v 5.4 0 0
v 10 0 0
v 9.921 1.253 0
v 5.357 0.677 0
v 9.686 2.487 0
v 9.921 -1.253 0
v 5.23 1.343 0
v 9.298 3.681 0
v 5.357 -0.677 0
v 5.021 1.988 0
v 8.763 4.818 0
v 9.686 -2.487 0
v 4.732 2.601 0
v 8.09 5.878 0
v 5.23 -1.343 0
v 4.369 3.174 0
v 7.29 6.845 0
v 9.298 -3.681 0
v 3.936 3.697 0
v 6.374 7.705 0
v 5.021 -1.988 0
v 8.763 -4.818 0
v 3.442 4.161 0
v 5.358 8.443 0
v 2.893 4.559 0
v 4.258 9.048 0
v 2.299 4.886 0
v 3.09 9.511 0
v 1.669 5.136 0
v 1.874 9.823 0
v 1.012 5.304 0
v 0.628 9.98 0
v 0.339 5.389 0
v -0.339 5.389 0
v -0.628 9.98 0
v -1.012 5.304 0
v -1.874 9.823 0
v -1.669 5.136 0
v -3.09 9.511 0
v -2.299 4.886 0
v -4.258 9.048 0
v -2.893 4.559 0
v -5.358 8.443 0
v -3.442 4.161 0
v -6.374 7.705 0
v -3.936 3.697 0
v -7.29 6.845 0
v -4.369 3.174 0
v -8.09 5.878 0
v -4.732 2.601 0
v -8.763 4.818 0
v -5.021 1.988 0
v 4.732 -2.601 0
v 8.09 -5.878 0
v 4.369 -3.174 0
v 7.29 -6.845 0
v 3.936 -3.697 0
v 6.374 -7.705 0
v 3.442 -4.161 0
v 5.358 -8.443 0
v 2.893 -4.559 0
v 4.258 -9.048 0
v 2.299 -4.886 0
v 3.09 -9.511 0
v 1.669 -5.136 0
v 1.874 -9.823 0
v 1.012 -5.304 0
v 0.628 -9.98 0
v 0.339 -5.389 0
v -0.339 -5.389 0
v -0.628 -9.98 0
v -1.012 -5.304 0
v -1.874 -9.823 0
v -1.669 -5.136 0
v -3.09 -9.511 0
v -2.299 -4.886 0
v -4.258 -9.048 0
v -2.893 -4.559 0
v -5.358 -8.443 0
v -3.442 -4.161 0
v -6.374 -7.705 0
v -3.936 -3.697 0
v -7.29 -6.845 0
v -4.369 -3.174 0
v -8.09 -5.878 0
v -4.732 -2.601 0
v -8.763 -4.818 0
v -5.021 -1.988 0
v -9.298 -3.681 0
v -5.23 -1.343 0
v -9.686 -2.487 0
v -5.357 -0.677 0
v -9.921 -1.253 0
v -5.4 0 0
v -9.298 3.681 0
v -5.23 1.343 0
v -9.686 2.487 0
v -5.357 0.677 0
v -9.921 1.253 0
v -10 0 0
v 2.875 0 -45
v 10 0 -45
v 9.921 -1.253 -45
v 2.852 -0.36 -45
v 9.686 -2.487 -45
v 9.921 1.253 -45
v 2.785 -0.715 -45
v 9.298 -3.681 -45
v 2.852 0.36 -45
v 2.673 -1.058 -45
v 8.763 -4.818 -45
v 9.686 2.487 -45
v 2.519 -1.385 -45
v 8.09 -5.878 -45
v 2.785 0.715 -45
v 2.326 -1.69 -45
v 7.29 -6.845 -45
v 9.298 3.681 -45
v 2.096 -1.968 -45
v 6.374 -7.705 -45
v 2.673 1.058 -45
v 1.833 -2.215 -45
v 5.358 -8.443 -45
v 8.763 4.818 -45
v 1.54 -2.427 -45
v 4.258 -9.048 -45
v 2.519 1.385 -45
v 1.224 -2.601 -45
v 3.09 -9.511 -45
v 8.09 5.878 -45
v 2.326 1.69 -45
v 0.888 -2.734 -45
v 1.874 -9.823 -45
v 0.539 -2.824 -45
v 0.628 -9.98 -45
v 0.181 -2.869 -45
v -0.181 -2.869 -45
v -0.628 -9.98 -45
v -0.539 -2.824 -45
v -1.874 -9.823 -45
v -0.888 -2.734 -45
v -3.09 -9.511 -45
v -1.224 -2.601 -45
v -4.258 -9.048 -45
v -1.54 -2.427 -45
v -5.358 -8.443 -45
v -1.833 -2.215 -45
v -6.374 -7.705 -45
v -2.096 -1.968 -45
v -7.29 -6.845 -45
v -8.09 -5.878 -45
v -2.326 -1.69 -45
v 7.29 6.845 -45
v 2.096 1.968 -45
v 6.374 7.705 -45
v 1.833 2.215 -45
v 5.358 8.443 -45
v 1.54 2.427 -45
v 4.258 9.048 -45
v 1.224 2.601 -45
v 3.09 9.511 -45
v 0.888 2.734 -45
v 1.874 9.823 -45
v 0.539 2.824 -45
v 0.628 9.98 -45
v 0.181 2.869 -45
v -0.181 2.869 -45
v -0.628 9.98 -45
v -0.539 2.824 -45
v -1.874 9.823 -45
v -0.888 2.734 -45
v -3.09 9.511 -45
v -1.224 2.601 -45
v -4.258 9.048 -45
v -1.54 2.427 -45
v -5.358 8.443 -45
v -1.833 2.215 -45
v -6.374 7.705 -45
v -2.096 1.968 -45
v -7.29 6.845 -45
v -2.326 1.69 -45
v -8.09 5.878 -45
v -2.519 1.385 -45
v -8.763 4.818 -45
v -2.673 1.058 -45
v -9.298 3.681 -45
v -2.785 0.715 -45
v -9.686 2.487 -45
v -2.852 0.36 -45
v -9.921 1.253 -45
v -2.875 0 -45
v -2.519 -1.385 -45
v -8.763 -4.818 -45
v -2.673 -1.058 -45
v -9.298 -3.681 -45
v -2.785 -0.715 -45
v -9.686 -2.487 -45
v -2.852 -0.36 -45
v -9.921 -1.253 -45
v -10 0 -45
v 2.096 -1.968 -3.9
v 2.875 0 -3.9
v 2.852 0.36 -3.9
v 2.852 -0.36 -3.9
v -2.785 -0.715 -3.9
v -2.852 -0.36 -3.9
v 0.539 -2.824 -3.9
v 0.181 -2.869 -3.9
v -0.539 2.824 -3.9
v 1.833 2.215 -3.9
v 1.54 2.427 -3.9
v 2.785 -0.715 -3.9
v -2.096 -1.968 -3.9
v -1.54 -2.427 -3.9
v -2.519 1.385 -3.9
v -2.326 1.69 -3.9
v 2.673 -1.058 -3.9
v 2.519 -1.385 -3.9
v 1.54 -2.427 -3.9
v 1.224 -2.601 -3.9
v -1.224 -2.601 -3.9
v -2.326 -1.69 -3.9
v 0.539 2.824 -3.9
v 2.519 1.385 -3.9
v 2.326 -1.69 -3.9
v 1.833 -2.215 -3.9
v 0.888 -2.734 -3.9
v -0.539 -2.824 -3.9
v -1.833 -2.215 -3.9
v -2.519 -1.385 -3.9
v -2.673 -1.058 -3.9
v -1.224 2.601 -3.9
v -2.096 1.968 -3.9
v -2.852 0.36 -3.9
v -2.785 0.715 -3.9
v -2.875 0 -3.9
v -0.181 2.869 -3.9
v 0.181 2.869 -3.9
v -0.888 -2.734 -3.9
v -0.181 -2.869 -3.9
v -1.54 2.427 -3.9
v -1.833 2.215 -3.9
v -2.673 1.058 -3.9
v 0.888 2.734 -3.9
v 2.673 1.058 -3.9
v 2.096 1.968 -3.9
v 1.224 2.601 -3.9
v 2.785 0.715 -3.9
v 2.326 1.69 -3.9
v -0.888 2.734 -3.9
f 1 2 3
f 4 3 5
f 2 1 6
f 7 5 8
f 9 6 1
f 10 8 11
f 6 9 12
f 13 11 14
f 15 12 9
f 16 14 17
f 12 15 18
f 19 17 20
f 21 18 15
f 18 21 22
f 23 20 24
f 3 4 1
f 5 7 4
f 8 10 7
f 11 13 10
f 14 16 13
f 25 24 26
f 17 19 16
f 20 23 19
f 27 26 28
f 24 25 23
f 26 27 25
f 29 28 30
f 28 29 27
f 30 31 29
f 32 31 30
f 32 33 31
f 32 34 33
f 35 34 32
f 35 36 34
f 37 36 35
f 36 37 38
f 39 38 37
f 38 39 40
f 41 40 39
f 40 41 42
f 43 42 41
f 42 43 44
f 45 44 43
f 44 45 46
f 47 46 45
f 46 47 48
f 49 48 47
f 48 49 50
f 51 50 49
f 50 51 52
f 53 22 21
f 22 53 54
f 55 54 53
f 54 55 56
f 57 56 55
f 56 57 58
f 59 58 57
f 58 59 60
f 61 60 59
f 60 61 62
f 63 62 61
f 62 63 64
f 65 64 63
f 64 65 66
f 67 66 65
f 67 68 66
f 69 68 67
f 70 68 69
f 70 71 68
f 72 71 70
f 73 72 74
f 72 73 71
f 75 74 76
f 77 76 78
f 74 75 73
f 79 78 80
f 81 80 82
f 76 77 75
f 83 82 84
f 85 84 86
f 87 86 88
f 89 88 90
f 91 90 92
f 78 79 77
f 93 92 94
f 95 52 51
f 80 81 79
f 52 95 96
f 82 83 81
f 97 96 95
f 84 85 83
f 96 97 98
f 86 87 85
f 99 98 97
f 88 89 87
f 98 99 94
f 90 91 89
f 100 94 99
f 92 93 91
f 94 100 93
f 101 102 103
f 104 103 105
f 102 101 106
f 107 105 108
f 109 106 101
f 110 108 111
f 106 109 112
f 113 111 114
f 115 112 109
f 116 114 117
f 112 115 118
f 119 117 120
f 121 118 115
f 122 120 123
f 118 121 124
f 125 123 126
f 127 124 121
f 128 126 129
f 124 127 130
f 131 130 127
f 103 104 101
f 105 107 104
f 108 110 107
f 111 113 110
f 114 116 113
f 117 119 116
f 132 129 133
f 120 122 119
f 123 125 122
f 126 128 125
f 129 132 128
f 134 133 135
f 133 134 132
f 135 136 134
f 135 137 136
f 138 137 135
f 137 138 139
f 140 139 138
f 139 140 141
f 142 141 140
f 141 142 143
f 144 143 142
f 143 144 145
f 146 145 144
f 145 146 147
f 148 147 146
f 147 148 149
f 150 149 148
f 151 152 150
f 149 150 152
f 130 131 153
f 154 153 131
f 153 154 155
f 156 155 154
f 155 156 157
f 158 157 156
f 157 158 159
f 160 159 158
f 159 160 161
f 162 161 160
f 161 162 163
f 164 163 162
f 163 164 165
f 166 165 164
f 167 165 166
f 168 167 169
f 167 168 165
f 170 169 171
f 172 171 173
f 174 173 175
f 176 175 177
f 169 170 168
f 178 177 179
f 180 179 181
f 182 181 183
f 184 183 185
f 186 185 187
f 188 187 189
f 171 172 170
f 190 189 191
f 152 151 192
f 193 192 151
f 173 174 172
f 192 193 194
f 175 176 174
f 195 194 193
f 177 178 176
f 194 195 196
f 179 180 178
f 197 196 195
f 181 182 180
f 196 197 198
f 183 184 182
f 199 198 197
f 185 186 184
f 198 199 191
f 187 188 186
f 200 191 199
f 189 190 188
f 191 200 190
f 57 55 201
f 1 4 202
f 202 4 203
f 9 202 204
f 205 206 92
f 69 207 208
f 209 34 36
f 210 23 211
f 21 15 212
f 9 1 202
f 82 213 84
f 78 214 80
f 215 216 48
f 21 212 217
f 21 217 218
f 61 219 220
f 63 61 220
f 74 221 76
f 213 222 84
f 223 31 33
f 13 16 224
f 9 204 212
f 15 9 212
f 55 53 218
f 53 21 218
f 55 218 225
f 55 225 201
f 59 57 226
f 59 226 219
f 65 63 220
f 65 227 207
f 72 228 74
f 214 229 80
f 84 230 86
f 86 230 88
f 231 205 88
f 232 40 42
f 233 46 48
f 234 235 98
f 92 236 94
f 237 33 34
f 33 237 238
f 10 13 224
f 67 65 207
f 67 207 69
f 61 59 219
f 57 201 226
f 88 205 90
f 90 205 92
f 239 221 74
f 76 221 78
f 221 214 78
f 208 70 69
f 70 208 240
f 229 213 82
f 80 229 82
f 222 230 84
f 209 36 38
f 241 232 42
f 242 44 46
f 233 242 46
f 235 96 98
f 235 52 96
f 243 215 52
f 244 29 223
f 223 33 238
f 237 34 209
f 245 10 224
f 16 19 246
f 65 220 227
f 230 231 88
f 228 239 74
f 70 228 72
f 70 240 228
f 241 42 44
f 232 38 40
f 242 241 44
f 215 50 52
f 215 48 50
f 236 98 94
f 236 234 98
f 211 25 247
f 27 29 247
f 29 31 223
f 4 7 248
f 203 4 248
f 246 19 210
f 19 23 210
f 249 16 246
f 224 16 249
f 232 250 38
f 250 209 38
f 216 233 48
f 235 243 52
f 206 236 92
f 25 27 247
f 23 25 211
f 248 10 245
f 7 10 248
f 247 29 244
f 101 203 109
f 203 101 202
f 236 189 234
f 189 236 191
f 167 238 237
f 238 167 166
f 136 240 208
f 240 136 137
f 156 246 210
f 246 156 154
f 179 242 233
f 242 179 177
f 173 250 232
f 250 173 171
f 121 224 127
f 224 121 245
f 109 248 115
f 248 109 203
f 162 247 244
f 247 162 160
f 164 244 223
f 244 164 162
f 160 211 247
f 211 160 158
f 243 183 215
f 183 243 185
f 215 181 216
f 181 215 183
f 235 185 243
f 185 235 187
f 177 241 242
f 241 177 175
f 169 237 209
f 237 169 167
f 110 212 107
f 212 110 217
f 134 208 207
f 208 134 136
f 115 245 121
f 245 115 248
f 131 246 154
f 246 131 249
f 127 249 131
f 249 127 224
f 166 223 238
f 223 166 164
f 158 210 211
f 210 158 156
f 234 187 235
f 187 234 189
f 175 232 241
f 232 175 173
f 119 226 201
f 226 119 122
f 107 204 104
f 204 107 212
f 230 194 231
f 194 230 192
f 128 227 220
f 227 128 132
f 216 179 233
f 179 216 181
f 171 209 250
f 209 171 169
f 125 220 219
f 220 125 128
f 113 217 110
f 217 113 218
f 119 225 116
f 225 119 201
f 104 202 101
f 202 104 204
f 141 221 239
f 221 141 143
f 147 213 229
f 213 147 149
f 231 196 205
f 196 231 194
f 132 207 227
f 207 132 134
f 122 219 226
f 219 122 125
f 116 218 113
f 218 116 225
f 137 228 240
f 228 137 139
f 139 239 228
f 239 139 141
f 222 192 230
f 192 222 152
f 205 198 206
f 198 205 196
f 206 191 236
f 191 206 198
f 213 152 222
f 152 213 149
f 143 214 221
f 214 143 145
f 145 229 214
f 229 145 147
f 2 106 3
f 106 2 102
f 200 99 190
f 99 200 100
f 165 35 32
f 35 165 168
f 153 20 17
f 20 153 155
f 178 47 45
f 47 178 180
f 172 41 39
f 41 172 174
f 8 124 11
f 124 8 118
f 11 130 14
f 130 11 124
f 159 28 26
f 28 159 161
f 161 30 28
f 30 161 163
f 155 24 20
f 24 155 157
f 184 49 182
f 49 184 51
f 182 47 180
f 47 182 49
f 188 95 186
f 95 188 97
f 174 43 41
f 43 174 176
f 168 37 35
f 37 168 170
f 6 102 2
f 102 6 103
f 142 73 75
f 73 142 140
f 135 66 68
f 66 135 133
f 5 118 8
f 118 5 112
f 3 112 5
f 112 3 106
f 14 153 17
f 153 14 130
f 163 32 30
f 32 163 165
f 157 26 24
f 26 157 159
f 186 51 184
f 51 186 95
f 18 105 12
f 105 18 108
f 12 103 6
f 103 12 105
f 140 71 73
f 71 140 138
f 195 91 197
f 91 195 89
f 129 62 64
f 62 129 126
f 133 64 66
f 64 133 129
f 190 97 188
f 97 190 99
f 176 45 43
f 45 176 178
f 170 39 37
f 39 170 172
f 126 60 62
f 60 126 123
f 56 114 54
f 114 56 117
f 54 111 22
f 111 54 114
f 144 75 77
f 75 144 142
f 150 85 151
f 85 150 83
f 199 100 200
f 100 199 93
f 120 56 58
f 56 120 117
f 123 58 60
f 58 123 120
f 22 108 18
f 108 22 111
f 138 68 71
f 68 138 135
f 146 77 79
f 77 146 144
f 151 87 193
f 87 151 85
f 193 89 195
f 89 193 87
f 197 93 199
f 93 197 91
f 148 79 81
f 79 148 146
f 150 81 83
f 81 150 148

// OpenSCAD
$fn = 50;


difference() {
	union() {
		translate(v = [0, 0, -45.0000000000]) {
			cylinder(h = 45, r = 10.0000000000);
		}
		cylinder(h = 0, r = 20.0000000000);
	}
	union() {
		translate(v = [0, 0, 0]) {
			rotate(a = [0, 0, 0]) {
				difference() {
					union() {
						#translate(v = [0, 0, -45.0000000000]) {
							cylinder(h = 45, r = 2.6000000000);
						}
						#translate(v = [0, 0, -3.9000000000]) {
							cylinder(h = 3.9000000000, r = 10.0000000000, r1 = 2.8750000000, r2 = 5.4000000000);
						}
						#translate(v = [0, 0, -45.0000000000]) {
							cylinder(h = 45, r = 2.8750000000);
						}
						#translate(v = [0, 0, -45.0000000000]) {
							cylinder(h = 45, r = 2.6000000000);
						}
					}
					union();
				}
			}
		}
	}
}
